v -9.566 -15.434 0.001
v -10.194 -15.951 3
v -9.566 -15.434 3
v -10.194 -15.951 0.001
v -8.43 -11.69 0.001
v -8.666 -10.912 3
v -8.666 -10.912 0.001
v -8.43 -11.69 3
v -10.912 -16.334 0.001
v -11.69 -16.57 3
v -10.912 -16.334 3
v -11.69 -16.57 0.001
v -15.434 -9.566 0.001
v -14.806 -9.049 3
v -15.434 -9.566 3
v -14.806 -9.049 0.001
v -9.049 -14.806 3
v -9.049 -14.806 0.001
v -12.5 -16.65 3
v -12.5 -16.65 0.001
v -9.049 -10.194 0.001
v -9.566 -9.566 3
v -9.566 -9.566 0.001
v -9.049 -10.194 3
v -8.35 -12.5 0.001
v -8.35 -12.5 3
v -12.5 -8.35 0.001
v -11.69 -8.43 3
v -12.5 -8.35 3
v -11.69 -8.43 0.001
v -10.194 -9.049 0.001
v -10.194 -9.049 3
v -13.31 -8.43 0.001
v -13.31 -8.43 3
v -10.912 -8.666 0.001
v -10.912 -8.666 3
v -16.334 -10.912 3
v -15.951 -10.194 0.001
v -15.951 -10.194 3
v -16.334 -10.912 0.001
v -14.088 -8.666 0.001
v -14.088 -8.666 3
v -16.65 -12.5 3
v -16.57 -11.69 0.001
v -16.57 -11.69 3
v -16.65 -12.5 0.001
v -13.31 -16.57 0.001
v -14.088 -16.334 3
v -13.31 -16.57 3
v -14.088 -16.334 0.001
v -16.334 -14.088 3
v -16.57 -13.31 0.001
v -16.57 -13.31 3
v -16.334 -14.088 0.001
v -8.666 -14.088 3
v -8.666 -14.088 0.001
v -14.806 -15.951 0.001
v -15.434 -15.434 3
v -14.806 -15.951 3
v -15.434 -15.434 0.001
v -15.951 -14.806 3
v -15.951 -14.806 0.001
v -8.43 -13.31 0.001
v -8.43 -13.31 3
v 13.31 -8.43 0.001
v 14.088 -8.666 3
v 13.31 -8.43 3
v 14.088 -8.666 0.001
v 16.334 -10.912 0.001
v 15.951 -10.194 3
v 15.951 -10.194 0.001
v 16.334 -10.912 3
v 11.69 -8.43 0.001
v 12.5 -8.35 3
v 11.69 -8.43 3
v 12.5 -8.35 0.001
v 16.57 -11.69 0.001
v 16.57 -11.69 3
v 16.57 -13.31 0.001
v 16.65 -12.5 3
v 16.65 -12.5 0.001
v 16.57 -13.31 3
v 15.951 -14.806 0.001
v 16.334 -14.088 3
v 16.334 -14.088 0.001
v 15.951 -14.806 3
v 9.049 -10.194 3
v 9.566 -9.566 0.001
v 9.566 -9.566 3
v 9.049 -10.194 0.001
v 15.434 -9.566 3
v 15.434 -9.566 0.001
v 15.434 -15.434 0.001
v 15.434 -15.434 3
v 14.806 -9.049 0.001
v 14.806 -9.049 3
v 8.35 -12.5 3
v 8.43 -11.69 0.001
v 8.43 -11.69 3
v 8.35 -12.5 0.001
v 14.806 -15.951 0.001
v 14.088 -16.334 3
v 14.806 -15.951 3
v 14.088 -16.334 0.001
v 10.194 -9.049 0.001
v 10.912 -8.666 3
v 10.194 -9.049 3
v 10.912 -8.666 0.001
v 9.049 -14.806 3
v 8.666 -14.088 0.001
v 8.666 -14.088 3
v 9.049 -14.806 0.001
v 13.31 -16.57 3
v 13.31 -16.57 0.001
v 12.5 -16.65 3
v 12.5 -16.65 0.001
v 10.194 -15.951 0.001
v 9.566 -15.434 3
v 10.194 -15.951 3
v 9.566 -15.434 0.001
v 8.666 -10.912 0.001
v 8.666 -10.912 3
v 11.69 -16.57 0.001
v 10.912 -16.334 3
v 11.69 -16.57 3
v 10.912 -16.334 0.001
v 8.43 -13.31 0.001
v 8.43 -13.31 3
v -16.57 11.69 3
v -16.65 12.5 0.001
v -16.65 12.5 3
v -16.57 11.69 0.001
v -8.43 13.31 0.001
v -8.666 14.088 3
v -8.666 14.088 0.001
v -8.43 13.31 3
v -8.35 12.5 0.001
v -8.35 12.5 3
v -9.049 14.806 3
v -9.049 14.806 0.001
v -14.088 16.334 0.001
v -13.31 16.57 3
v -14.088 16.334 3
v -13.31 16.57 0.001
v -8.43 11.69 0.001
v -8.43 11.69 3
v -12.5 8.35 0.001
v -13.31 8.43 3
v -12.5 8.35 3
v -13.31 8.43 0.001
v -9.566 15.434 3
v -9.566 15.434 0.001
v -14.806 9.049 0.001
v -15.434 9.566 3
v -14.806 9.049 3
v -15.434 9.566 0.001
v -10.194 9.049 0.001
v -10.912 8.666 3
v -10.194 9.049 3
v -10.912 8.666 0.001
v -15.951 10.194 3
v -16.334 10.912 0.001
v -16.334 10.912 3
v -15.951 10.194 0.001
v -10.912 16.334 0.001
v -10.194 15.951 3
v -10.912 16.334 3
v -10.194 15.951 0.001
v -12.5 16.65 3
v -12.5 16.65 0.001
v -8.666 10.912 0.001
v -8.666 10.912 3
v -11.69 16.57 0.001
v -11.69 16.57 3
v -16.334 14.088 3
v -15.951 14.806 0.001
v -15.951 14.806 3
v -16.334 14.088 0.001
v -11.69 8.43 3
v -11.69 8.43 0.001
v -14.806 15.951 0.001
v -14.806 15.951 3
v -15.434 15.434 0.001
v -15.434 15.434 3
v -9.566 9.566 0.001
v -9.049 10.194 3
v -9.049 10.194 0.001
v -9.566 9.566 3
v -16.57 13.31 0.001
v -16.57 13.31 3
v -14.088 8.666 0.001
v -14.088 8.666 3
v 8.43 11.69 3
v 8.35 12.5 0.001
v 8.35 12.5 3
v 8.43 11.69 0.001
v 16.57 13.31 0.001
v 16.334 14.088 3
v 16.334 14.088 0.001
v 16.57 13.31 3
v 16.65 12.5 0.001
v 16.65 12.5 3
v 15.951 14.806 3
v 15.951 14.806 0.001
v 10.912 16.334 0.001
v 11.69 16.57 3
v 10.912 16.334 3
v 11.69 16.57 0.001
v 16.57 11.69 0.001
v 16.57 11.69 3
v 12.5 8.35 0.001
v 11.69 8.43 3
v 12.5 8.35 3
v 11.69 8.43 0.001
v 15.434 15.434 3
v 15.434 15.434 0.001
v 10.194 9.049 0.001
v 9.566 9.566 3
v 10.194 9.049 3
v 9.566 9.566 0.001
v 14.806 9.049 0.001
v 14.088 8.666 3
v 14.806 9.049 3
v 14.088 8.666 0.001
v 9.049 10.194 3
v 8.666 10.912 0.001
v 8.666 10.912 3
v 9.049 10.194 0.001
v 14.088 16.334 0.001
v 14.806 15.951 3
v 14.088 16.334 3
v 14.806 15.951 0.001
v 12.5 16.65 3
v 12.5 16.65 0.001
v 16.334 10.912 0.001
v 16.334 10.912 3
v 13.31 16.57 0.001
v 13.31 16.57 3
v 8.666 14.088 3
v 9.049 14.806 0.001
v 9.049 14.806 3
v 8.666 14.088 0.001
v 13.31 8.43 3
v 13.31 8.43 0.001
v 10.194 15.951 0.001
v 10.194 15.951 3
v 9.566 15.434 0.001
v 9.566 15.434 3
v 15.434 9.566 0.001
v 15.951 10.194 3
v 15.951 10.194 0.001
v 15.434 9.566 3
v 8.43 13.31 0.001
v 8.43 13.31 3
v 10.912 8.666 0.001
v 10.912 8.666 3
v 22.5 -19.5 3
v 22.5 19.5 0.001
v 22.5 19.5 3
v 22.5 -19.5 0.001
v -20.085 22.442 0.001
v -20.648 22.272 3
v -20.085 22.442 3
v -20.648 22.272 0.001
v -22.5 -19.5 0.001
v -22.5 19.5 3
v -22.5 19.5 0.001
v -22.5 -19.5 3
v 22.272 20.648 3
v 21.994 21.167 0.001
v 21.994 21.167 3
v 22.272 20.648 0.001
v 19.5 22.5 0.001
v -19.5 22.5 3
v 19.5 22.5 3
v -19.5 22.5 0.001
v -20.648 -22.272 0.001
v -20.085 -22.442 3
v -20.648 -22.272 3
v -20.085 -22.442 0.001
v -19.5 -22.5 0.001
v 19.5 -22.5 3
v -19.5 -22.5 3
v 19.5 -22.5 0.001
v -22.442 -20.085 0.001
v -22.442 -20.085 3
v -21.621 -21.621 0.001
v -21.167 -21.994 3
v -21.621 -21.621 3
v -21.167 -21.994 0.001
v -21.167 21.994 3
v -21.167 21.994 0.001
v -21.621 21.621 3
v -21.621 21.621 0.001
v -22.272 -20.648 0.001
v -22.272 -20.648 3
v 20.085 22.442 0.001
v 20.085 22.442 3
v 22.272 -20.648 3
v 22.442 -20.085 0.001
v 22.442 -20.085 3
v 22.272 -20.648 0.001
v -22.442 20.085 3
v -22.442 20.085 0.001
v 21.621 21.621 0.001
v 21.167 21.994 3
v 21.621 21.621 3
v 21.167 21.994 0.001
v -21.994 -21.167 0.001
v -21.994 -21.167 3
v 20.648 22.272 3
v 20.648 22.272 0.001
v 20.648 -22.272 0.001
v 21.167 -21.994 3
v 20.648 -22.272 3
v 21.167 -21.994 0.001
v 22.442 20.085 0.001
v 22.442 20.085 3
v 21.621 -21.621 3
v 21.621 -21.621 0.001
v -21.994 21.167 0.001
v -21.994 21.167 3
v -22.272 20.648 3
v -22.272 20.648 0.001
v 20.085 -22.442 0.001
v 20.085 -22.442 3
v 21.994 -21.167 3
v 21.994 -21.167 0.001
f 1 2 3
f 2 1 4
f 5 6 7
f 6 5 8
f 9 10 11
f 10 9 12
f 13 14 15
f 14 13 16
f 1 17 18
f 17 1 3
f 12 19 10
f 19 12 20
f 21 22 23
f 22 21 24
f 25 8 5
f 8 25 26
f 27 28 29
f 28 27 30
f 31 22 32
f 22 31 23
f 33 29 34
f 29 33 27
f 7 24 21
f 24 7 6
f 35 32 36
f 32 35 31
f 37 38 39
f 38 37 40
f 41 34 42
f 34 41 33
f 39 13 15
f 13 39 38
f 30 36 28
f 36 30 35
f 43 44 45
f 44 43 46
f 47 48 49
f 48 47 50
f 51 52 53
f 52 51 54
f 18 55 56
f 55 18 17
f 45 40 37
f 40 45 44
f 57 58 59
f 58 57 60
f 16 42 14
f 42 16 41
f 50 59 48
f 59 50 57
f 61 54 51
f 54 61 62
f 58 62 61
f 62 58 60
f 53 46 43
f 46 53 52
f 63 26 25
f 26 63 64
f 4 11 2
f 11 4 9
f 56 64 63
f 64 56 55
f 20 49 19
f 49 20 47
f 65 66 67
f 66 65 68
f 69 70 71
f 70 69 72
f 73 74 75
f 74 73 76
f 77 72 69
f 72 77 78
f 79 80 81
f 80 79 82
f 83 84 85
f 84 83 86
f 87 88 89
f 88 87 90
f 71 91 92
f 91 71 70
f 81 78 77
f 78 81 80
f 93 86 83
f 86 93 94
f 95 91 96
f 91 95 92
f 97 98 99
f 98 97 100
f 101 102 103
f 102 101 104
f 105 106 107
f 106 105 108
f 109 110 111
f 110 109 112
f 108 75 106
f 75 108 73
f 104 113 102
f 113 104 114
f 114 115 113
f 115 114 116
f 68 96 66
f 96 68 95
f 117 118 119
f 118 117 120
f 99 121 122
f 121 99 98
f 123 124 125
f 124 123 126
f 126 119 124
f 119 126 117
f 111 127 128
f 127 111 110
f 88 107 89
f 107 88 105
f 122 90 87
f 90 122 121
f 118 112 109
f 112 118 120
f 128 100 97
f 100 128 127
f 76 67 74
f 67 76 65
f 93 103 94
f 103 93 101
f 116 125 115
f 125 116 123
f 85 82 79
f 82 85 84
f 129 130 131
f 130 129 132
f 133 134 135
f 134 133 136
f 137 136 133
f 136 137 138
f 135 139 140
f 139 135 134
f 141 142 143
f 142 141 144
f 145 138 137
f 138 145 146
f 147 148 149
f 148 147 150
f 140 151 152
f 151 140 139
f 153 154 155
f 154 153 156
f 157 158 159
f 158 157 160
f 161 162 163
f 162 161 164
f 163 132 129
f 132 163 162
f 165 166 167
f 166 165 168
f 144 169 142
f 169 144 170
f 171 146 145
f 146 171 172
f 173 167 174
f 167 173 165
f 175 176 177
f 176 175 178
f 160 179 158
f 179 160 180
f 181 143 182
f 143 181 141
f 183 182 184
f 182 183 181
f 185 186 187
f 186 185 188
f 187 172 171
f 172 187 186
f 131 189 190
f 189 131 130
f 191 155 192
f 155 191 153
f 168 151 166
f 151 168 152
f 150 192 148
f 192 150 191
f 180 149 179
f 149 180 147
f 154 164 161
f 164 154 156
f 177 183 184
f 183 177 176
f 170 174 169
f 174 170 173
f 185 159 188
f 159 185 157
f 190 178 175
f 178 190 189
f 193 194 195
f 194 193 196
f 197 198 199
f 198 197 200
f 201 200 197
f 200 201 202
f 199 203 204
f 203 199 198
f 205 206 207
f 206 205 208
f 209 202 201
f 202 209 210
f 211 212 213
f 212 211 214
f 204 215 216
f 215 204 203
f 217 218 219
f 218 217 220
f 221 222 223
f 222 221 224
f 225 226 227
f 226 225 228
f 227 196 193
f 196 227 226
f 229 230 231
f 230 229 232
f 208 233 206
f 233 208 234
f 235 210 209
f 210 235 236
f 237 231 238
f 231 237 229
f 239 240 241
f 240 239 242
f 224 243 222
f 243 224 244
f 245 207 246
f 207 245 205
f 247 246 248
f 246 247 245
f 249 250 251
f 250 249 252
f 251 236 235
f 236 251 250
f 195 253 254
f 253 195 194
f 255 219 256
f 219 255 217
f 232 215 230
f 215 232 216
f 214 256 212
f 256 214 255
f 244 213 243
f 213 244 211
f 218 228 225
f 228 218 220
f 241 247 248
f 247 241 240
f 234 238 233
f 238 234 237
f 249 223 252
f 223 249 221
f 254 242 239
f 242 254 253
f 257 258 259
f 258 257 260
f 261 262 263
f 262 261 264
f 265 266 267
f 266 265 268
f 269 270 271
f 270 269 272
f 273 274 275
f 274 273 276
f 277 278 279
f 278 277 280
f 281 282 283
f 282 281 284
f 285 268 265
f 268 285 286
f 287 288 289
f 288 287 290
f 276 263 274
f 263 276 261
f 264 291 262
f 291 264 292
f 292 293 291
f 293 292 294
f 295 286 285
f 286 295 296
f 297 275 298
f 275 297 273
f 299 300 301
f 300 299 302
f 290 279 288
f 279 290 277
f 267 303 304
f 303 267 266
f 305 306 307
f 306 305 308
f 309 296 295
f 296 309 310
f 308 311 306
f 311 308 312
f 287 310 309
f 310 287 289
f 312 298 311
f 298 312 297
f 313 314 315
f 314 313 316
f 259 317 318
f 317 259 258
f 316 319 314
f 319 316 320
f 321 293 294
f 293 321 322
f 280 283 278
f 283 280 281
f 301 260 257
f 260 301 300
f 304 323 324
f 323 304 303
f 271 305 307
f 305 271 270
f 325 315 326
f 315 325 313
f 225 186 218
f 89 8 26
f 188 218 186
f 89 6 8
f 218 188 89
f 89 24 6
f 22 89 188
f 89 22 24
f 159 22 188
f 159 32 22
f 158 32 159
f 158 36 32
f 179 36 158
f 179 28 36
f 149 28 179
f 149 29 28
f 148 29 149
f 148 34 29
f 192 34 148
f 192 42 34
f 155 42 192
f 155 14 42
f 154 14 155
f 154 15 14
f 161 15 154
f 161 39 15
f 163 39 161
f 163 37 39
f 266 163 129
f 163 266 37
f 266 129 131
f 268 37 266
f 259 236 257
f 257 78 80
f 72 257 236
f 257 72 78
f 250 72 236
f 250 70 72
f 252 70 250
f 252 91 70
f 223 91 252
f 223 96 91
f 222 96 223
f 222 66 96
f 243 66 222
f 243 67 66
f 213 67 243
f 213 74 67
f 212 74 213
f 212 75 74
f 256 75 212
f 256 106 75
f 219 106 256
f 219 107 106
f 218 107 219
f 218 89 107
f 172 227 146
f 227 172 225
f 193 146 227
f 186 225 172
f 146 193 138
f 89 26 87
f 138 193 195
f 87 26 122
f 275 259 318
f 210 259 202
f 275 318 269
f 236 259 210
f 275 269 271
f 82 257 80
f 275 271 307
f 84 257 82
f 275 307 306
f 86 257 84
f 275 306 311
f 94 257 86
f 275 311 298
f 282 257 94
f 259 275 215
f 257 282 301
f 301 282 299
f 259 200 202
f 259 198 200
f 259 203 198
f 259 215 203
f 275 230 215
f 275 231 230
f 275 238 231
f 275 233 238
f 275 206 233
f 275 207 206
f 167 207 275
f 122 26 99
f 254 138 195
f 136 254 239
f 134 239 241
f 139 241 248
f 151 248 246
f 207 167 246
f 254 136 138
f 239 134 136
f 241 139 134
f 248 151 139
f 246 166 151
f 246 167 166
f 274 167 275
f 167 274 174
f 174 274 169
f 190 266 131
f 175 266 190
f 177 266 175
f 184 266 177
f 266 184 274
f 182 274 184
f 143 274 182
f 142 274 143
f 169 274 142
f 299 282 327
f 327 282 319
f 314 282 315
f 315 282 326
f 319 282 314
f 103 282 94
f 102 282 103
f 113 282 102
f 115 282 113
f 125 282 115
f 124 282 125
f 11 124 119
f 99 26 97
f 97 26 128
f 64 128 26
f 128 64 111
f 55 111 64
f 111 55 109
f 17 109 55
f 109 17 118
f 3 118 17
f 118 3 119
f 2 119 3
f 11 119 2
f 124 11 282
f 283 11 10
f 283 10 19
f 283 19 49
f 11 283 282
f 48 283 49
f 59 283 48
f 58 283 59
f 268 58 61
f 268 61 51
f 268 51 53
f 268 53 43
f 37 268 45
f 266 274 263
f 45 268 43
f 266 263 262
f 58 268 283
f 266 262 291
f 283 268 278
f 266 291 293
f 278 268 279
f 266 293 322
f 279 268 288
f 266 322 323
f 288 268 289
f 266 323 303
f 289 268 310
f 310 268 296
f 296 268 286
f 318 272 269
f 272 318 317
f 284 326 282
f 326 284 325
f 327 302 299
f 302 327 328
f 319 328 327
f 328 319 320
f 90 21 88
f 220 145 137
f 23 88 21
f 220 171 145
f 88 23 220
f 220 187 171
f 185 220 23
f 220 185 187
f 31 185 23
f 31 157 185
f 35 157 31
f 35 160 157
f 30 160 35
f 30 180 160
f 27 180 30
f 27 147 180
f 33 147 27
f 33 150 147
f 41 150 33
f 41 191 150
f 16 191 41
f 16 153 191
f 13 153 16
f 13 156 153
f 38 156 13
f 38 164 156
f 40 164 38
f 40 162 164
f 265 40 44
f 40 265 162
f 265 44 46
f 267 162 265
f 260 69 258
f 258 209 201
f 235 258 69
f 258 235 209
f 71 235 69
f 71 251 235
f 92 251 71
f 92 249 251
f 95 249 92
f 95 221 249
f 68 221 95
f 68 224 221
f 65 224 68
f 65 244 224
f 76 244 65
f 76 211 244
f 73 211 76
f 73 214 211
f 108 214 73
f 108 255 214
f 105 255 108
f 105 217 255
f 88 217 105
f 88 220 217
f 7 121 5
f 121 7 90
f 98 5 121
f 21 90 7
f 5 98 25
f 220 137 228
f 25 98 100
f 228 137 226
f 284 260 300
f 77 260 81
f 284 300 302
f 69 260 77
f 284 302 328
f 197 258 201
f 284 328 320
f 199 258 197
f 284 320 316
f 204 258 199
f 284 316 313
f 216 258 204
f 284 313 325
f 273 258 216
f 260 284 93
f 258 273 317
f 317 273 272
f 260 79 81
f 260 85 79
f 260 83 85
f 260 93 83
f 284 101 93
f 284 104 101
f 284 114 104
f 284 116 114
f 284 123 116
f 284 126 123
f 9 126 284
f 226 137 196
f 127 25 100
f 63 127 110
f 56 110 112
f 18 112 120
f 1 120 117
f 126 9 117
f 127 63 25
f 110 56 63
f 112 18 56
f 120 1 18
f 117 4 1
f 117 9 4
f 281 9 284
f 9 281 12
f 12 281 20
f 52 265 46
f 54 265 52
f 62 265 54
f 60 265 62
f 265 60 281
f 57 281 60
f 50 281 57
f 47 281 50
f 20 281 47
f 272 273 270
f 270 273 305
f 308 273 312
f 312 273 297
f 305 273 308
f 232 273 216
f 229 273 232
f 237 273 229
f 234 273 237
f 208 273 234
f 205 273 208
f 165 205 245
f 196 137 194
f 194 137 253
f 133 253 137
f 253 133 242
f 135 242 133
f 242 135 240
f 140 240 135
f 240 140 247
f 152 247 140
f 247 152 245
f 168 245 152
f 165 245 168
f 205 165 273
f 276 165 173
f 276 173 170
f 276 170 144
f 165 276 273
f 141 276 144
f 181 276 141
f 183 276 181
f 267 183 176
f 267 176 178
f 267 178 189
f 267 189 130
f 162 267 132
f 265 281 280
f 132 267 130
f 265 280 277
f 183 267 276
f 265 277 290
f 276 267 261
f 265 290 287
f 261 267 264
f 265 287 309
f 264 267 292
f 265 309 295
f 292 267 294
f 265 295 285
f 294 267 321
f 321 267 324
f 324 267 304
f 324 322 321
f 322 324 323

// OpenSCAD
// ============================================================
// LED Hole Fit Test — 2×2 sample of the layer jig hole pattern
// Print this before printing the full layer_jig to verify
// the 8.3 mm holes fit the actual LED bodies.
// Printer: Bambu Lab A1 Mini
// Print orientation: flat side on bed
// ============================================================

// ============================================================
// PARAMETERS — must match layer_jig.scad exactly
// ============================================================
led_body_d    = 8.0;   // mm — LED body diameter
led_clearance = 0.3;   // mm — same clearance as full jig

pitch         = 25.0;  // mm — center-to-center (same as full jig)
test_grid     = 2;     // holes per side (2×2 = 4 LEDs to test)
board_t       = 3.0;   // mm — same thickness as full jig
margin        = 10.0;  // mm — board edge beyond outermost hole centres
corner_r      = 3.0;   // mm

// ============================================================
// DERIVED
// ============================================================
hole_d     = led_body_d + led_clearance;                      // 8.3 mm
board_side = (test_grid - 1) * pitch + 2 * margin;           // 45 mm
grid_start = -(test_grid - 1) * pitch / 2;                   // −12.5 mm

// ============================================================
// MODEL
// ============================================================
difference() {
    // Rounded-corner plate
    translate([0, 0, board_t / 2])
    minkowski() {
        cube([board_side - 2*corner_r,
              board_side - 2*corner_r,
              board_t - 0.001], center=true);
        cylinder(r=corner_r, h=0.001, $fn=32);
    }

    // 2×2 LED holes
    for (row = [0 : test_grid - 1]) {
        for (col = [0 : test_grid - 1]) {
            translate([grid_start + col * pitch,
                       grid_start + row * pitch,
                       -0.01])
            cylinder(d=hole_d, h=board_t + 0.02, $fn=32);
        }
    }
}

// ============================================================
// KEY DIMENSIONS
// plate     : 45 × 45 × 3 mm
// hole_d    : 8.3 mm (8.0 mm LED body + 0.3 mm clearance)
// pitch     : 25 mm
// grid      : 2×2 = 4 holes
// ============================================================
